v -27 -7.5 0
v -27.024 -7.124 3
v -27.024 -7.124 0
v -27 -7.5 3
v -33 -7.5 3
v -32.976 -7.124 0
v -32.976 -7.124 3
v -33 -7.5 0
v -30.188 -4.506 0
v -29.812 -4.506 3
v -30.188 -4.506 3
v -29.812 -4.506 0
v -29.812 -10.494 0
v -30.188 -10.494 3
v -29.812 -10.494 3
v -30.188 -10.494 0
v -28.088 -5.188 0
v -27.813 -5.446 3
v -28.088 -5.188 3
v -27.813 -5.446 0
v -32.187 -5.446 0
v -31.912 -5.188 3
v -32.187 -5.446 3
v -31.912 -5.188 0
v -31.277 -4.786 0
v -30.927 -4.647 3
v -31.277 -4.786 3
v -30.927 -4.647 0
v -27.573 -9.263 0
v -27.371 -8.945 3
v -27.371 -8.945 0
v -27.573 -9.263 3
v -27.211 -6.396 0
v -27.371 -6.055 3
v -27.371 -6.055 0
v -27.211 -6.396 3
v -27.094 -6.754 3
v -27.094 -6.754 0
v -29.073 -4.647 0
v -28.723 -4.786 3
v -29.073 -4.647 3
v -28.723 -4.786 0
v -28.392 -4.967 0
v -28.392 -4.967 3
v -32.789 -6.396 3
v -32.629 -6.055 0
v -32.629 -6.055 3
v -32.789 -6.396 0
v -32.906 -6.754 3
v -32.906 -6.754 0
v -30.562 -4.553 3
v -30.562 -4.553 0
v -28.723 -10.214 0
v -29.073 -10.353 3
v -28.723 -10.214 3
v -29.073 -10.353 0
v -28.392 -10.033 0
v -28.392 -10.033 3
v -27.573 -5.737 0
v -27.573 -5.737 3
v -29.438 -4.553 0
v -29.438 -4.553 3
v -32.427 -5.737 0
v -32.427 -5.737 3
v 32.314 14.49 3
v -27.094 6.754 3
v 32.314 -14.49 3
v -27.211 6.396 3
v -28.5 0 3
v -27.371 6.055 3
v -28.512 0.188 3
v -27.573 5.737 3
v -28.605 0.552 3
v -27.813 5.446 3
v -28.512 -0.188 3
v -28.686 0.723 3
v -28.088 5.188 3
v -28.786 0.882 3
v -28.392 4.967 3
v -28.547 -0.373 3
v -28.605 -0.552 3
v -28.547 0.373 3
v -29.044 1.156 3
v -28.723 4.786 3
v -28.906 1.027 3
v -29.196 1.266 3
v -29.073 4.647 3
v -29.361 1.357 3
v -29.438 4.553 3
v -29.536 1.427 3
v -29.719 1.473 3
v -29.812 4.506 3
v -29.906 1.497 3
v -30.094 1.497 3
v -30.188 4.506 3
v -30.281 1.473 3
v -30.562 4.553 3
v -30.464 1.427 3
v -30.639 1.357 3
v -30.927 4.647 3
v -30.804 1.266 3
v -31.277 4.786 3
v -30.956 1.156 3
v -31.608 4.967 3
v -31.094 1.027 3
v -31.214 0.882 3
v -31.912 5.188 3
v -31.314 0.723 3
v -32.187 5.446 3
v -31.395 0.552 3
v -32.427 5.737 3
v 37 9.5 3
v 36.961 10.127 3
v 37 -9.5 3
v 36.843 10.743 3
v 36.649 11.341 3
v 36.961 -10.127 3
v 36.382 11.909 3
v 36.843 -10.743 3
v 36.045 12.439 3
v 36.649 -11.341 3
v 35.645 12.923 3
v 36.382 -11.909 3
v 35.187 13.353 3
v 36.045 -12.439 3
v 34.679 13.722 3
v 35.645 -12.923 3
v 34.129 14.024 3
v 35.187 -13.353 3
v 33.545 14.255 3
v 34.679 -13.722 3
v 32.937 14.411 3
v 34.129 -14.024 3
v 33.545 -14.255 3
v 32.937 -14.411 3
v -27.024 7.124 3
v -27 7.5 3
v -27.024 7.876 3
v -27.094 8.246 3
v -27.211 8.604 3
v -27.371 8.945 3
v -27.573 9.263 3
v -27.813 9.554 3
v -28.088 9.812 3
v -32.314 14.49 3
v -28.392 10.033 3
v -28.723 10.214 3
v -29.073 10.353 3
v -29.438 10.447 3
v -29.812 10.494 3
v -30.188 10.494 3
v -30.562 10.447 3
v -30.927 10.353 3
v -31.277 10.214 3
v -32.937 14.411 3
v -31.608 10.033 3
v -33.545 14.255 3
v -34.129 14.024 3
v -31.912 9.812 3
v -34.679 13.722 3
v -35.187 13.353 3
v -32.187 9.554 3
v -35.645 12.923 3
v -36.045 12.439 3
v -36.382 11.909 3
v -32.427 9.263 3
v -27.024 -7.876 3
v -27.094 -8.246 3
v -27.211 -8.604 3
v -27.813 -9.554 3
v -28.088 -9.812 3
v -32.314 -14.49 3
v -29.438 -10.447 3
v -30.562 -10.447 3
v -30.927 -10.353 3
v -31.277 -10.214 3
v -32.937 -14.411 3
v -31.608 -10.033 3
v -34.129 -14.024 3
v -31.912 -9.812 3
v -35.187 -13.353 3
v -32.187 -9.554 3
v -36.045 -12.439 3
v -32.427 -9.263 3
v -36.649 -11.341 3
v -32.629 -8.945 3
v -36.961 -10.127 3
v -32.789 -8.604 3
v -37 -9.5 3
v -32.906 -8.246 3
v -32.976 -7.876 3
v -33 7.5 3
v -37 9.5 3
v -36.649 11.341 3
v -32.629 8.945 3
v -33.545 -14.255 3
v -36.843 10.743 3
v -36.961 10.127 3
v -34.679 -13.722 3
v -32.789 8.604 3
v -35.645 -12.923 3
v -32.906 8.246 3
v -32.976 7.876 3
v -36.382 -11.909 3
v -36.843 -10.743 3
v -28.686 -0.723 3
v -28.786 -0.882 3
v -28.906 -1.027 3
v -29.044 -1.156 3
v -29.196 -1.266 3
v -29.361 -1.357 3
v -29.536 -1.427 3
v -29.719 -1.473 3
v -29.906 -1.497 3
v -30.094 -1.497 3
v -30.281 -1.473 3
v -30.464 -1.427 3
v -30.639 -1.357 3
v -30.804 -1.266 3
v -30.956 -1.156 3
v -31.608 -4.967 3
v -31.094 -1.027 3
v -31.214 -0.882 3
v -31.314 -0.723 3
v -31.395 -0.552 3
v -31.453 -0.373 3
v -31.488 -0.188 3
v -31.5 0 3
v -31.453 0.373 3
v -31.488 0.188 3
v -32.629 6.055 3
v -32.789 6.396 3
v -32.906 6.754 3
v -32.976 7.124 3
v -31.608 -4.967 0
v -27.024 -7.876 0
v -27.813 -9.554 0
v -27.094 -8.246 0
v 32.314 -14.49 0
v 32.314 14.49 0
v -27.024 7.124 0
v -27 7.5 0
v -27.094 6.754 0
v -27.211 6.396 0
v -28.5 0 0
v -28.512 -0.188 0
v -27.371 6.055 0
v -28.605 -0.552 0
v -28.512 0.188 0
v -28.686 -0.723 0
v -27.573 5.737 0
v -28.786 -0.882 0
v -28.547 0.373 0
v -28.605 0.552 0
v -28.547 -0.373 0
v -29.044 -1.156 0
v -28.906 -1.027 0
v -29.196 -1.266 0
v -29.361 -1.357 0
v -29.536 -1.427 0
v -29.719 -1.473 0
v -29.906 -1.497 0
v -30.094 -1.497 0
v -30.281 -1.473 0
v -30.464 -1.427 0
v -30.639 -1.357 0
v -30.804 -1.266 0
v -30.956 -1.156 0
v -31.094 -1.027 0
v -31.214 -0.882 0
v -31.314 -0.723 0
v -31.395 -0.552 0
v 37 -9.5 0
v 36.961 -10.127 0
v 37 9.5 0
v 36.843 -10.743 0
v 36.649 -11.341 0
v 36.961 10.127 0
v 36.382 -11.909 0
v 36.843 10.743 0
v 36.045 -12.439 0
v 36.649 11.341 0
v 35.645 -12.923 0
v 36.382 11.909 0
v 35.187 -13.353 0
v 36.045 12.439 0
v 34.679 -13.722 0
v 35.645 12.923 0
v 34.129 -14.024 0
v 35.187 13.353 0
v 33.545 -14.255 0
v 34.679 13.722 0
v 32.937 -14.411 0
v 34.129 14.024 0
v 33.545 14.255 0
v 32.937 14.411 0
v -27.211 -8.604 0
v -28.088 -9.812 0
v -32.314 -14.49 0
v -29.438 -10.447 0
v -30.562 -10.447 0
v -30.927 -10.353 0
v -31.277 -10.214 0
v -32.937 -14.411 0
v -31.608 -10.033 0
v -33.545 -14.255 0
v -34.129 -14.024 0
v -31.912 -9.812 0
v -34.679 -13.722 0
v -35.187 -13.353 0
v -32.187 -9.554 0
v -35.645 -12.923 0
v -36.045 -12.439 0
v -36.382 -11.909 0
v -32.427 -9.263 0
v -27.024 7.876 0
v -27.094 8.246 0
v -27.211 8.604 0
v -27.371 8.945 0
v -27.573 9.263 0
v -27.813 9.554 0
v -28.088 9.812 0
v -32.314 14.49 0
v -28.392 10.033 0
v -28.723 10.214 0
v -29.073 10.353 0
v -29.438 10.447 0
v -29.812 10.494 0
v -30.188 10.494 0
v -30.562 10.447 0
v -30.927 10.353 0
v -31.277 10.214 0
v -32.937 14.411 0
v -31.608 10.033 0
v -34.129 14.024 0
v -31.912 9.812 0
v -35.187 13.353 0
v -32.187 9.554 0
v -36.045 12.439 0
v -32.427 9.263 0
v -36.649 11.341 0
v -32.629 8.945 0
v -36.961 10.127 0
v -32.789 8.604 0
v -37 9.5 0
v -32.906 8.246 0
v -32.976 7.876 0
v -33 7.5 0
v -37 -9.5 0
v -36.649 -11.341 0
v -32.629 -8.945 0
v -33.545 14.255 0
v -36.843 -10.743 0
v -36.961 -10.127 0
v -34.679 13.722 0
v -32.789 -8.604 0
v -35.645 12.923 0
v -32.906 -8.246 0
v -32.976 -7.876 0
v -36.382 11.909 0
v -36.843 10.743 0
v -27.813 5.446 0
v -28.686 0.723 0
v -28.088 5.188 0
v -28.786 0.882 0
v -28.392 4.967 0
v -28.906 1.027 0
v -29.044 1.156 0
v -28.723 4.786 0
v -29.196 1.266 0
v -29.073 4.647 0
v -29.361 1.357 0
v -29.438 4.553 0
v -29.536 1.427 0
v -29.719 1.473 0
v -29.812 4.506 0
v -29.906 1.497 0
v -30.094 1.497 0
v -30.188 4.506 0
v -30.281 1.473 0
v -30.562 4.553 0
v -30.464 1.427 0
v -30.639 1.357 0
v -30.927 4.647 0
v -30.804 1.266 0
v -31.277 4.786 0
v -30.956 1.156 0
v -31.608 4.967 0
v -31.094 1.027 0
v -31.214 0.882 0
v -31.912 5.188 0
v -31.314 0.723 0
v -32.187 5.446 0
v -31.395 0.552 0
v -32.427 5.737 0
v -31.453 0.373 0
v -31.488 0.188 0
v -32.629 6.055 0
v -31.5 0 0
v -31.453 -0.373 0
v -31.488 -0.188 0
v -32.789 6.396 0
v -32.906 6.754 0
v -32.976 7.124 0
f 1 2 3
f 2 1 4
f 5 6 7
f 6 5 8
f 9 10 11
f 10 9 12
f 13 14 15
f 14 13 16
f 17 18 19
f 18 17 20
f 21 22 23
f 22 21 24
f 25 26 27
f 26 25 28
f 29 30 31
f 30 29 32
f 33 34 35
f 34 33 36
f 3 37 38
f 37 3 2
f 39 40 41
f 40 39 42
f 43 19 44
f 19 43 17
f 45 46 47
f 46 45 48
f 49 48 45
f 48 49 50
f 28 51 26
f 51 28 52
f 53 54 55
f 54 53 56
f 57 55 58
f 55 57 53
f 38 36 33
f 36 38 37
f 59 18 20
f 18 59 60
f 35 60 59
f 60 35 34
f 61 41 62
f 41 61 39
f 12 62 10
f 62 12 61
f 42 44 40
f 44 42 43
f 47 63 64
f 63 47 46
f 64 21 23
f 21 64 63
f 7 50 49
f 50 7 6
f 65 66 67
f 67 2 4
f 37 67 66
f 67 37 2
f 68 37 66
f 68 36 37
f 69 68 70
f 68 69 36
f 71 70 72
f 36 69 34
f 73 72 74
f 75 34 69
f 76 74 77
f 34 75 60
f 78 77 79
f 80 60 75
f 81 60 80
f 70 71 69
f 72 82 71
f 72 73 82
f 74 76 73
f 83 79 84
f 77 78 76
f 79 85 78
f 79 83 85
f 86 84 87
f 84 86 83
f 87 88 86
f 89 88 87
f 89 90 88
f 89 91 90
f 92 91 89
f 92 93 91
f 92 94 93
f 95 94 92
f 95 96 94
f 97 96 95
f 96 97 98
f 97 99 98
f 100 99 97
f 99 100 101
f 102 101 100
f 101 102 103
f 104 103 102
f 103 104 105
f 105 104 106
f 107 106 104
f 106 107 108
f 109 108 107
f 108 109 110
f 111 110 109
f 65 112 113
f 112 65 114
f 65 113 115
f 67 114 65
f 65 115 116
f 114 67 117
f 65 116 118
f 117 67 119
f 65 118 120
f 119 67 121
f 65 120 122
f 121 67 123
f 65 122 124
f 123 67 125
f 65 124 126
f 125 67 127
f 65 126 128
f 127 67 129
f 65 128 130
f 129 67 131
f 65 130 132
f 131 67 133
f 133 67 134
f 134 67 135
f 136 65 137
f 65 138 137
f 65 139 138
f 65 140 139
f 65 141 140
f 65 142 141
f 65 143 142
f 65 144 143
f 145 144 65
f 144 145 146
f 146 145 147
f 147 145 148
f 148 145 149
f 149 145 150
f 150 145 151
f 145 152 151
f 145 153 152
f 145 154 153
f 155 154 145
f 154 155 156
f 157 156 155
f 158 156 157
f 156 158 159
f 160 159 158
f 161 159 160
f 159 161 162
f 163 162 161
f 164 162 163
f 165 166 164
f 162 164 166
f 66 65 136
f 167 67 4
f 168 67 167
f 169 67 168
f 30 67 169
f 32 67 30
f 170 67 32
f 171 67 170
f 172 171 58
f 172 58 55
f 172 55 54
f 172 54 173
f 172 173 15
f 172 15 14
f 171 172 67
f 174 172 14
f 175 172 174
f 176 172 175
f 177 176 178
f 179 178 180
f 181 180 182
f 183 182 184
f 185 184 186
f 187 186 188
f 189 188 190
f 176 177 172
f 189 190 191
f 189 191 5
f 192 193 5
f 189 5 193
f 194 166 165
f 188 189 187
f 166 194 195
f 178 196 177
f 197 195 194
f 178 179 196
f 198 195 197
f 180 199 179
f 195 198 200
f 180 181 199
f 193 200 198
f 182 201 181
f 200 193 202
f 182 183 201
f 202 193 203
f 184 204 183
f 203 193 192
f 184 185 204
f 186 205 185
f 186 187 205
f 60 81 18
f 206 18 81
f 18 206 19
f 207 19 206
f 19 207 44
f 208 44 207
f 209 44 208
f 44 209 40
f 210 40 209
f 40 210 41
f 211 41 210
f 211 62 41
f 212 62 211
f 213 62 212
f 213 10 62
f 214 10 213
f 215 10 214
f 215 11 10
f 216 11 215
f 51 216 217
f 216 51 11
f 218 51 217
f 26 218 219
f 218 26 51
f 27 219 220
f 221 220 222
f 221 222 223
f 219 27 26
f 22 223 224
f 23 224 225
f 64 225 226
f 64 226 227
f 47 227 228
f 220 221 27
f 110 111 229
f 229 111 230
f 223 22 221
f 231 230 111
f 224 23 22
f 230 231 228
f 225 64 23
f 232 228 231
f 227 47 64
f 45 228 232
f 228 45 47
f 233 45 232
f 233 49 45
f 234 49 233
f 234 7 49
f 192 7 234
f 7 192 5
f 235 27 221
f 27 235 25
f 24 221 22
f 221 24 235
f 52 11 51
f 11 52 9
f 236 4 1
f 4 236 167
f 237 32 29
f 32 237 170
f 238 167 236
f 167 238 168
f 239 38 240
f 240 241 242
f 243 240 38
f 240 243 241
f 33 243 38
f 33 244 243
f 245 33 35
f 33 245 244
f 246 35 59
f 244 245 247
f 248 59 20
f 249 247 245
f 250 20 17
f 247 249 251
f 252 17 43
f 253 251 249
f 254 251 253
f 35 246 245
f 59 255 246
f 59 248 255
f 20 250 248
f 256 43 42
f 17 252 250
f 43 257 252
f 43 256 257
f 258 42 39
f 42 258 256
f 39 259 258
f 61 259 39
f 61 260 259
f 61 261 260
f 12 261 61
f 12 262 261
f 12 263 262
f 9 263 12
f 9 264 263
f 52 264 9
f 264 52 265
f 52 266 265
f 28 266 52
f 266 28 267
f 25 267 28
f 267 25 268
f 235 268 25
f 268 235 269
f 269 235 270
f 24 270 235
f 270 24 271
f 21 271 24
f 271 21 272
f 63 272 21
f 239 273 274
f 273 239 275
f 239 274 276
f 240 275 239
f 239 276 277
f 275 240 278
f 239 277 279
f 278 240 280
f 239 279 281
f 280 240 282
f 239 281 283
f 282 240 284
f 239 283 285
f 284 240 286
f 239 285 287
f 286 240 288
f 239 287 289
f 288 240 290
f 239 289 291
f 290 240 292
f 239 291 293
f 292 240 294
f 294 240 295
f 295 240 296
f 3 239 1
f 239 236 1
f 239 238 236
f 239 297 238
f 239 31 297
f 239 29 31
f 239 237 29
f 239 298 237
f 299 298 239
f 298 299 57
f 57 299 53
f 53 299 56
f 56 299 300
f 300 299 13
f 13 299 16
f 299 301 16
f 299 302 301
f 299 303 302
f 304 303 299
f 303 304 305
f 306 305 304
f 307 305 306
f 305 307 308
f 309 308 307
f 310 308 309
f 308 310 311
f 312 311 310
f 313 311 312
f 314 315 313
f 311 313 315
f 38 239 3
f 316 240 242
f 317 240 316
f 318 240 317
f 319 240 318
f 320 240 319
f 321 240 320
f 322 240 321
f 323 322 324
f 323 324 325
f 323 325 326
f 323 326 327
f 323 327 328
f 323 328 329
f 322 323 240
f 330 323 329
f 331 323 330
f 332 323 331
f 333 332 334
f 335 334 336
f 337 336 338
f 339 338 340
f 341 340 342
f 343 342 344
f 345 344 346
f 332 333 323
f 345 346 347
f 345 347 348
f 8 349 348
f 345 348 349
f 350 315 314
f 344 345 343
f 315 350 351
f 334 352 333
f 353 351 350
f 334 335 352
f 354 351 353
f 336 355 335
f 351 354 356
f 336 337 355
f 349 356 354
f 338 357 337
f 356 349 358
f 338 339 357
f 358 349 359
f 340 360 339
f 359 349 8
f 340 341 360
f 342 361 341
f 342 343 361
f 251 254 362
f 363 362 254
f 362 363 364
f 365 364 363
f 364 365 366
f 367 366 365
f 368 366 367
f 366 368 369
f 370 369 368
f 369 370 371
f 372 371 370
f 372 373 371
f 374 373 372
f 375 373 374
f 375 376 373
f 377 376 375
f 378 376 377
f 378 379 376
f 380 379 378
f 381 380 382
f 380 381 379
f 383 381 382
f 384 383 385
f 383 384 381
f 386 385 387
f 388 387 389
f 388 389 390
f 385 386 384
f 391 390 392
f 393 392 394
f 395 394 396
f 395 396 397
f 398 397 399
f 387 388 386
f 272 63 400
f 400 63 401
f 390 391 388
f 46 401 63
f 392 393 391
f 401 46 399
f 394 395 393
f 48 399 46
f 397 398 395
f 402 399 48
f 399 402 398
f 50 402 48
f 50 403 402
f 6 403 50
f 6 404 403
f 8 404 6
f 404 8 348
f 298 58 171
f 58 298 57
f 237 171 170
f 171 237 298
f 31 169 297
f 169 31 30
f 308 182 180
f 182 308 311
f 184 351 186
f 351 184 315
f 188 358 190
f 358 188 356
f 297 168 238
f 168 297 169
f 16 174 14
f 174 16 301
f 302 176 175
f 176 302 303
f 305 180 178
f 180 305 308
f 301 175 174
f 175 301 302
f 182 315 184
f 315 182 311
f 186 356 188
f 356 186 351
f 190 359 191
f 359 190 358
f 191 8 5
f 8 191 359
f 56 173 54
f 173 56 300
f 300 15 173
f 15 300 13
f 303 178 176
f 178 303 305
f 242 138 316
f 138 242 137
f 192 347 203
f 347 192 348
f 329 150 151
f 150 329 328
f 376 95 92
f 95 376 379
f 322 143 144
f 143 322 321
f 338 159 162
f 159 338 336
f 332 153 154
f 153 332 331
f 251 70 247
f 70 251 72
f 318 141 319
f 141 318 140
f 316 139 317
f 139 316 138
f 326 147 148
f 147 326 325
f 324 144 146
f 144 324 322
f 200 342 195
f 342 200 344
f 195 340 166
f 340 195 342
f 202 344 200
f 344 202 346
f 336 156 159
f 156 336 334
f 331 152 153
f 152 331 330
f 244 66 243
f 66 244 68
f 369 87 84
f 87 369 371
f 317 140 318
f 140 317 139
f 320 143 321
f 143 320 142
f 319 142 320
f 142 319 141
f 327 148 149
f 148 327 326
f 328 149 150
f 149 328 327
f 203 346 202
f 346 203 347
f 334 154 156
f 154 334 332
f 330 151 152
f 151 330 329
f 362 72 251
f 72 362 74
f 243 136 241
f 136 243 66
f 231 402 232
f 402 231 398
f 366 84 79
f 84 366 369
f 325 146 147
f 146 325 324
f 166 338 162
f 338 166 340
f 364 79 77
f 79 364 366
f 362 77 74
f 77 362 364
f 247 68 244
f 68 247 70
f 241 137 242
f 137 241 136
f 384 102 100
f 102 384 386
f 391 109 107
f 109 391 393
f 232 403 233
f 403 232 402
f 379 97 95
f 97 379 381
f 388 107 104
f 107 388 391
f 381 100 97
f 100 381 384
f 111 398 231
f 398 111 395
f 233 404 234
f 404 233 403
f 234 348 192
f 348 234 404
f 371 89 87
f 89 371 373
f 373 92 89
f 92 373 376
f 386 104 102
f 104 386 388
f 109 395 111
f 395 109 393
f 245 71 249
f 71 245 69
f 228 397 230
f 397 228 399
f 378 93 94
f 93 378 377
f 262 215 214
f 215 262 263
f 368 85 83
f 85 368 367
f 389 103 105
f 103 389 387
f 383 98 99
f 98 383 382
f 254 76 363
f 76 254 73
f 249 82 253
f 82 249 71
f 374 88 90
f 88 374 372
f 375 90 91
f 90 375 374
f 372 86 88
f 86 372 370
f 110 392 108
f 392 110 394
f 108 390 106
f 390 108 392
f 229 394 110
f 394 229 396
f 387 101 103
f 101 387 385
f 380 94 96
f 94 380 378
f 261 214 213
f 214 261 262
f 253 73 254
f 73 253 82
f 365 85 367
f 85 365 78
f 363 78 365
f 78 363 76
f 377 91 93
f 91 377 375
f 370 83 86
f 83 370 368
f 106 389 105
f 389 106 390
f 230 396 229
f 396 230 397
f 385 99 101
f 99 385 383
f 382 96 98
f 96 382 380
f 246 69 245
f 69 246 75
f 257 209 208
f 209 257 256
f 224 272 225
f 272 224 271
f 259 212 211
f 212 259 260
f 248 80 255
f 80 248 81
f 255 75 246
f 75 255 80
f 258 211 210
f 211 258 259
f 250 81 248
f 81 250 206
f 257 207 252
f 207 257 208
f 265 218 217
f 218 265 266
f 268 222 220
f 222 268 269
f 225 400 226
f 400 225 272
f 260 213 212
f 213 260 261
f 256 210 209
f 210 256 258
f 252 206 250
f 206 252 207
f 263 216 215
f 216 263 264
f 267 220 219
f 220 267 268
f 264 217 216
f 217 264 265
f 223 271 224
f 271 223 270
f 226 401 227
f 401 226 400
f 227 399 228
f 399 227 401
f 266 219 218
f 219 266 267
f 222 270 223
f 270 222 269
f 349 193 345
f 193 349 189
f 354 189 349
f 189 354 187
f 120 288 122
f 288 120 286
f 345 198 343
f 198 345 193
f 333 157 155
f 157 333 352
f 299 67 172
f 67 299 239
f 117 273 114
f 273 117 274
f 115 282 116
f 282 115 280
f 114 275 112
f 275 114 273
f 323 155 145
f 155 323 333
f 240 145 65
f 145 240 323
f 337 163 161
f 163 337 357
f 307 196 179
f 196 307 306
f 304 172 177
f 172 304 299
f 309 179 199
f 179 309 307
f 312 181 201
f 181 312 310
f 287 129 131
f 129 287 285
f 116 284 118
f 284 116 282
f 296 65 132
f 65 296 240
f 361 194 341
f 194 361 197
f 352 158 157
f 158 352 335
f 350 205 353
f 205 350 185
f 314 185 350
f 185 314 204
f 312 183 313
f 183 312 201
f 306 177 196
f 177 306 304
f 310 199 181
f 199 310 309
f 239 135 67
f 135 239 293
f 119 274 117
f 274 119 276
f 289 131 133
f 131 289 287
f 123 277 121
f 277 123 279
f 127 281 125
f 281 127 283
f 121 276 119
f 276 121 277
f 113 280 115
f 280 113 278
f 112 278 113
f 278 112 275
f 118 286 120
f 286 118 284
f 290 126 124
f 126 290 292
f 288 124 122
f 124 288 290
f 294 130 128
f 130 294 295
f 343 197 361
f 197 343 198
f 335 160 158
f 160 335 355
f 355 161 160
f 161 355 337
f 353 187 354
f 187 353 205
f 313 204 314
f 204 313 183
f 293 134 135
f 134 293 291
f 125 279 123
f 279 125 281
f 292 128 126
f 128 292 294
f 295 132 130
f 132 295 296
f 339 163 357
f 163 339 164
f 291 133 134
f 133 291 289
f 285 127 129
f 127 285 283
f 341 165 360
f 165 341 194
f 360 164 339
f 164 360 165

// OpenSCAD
$fn = 50;


difference() {
	union() {
		hull() {
			translate(v = [-32.0000000000, 9.5000000000, 0]) {
				cylinder(h = 3, r = 5);
			}
			translate(v = [32.0000000000, 9.5000000000, 0]) {
				cylinder(h = 3, r = 5);
			}
			translate(v = [-32.0000000000, -9.5000000000, 0]) {
				cylinder(h = 3, r = 5);
			}
			translate(v = [32.0000000000, -9.5000000000, 0]) {
				cylinder(h = 3, r = 5);
			}
		}
	}
	union() {
		translate(v = [-30.0000000000, -7.5000000000, 0]) {
			cylinder(h = 3, r = 3.0000000000);
		}
		translate(v = [-30.0000000000, 7.5000000000, 0]) {
			cylinder(h = 3, r = 3.0000000000);
		}
		translate(v = [-30.0000000000, -7.5000000000, 0]) {
			cylinder(h = 3, r = 1.5000000000);
		}
		translate(v = [-30.0000000000, 0.0000000000, 0]) {
			cylinder(h = 3, r = 1.5000000000);
		}
		translate(v = [-30.0000000000, 7.5000000000, 0]) {
			cylinder(h = 3, r = 1.5000000000);
		}
		translate(v = [-30.0000000000, -7.5000000000, 0]) {
			cylinder(h = 3, r = 1.5000000000);
		}
		translate(v = [-30.0000000000, 0.0000000000, 0]) {
			cylinder(h = 3, r = 1.5000000000);
		}
		translate(v = [-30.0000000000, 7.5000000000, 0]) {
			cylinder(h = 3, r = 1.5000000000);
		}
		translate(v = [-30.0000000000, -7.5000000000, 0]) {
			cylinder(h = 3, r = 1.5000000000);
		}
		translate(v = [-30.0000000000, 0.0000000000, 0]) {
			cylinder(h = 3, r = 1.5000000000);
		}
		translate(v = [-30.0000000000, 7.5000000000, 0]) {
			cylinder(h = 3, r = 1.5000000000);
		}
	}
}
